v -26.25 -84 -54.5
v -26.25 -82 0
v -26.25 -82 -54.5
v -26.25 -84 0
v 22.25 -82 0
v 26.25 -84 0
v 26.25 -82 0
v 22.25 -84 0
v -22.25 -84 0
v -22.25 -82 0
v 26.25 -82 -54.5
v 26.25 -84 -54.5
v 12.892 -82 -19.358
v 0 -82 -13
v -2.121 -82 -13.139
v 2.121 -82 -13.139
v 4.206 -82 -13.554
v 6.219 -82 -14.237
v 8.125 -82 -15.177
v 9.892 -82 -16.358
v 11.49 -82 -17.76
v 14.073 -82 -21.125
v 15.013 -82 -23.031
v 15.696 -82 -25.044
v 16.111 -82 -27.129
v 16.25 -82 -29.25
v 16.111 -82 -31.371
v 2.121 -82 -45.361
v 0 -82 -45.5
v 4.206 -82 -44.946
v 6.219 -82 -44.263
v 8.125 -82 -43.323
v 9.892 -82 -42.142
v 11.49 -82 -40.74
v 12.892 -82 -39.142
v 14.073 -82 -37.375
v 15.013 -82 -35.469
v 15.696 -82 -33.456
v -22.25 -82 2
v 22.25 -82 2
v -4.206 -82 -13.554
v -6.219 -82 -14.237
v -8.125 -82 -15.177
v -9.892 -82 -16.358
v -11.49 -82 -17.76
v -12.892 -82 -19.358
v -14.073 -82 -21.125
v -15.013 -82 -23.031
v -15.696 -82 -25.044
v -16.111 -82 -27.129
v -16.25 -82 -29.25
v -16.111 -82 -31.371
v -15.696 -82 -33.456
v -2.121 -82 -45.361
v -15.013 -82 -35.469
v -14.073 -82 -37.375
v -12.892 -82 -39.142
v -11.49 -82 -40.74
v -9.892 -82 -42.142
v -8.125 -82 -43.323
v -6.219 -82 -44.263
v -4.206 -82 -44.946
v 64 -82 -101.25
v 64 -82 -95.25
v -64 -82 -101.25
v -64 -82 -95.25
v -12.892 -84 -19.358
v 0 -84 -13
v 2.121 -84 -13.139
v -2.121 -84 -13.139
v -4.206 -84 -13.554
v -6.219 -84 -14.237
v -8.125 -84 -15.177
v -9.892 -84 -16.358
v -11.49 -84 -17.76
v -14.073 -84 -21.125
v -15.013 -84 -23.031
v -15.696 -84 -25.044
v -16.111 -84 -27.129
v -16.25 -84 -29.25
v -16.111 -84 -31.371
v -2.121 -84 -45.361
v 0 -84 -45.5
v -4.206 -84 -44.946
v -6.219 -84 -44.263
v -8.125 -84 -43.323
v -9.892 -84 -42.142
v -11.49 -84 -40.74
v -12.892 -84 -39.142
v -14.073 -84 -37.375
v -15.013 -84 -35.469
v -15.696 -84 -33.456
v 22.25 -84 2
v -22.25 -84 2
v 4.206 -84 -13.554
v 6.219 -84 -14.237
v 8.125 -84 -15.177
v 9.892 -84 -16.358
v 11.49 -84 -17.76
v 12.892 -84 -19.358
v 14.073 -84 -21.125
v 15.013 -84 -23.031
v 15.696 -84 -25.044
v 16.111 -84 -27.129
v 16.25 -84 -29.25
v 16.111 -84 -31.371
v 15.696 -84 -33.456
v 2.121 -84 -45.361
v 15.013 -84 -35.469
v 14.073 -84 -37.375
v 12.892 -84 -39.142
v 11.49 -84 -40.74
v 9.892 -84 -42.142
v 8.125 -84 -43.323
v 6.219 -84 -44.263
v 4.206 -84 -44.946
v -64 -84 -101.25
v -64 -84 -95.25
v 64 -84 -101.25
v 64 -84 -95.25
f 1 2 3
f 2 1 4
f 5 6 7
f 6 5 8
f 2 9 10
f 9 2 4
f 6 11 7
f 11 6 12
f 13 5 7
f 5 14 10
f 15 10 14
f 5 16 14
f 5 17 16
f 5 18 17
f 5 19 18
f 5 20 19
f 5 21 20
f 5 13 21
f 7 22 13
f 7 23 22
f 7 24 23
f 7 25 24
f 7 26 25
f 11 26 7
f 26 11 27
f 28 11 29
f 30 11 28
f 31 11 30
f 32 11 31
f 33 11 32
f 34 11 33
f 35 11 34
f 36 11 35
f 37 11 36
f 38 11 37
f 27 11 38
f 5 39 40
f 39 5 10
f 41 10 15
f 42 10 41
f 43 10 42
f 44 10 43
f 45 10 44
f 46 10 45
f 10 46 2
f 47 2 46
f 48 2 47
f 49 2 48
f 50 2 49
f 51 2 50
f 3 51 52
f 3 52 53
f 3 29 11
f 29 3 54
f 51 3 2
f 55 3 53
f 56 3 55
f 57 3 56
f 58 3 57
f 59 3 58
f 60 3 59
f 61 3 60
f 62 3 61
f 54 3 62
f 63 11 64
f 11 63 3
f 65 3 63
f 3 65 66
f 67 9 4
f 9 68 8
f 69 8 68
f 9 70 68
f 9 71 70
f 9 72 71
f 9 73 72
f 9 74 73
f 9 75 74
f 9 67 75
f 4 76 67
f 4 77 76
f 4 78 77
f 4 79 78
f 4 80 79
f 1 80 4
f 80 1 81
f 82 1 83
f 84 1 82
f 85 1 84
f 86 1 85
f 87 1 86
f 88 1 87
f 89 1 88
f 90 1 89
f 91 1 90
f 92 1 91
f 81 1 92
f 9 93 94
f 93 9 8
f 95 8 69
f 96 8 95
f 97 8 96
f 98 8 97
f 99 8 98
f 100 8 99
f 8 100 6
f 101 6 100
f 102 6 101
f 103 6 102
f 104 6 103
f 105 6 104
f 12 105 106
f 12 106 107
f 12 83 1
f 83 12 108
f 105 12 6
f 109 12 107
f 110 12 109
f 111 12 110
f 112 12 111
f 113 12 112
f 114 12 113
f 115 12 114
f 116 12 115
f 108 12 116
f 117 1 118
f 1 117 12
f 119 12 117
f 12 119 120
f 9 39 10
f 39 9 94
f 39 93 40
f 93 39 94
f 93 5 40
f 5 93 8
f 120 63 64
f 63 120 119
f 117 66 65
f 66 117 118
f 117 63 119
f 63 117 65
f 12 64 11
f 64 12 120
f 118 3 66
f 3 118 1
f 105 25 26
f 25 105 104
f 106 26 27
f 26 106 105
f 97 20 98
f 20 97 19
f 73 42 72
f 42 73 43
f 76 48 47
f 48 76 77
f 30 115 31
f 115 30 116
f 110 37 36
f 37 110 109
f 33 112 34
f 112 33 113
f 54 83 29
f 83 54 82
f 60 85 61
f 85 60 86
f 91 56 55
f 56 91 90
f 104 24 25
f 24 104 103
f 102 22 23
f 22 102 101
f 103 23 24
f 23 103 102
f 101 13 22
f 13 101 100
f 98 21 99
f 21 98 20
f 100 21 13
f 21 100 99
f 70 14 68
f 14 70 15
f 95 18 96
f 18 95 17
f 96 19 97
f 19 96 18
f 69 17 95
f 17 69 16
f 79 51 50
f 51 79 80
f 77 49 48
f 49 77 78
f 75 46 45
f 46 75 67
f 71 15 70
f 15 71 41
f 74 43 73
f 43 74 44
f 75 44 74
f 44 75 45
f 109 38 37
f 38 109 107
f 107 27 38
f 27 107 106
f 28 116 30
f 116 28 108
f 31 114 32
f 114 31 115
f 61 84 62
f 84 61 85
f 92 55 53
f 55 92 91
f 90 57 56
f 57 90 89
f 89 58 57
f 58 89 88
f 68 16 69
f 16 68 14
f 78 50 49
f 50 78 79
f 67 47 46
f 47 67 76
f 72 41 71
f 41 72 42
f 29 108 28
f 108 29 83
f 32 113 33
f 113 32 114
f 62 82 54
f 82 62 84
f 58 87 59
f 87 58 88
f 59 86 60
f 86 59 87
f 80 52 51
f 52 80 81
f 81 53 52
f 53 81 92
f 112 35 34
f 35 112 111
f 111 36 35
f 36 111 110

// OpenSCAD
/*
  Seed imaging system case with experimental collector

  Starting point:
    A simple rectangular base plate for the vacuum/rocking seed imaging system.
*/

$fn = 48;

// Choose what OpenSCAD shows/exports.
part_to_show = "front"; // "assembly", "plate", "front", "back", "left_side", "right_side", "sides", "collector", "lower_frame", "bottom"

// Base plate dimensions.
plate_w = 210;      // mm
plate_h = 180;      // mm
plate_thick = 2;    // mm
corner_r = 2;       // mm, just enough to remove sharp corners
wall_slot_clearance = 0.3; // mm extra slot size for sliding wall parts into plate

// Cutout matching the outer tray footprint of the moving funnel adapter.
funnel_cutout_w = 124;       // mm, long side plus clearance for rotation
funnel_cutout_h = 87;        // mm, short side plus clearance for rotation
funnel_front_gap = 20;       // mm from front long edge of plate to cutout
funnel_cutout_r = 2;         // mm, slight radius to avoid sharp internal corners
funnel_cutout_y = -plate_h/2 + funnel_front_gap + funnel_cutout_h/2;

// Front wall for the vacuum adapter interface, hanging down from the top plate.
front_wall_offset_from_cutout = 12; // mm from front edge of cutout toward plate front
front_wall_extra_w = 10;            // mm extension beyond each cutout side
front_wall_w = funnel_cutout_w + 2 * front_wall_extra_w;
front_wall_h = 101.25;              // mm, bottom is 72 mm below front circle center
front_wall_thick = 2;               // mm
front_wall_y = funnel_cutout_y - funnel_cutout_h/2 - front_wall_offset_from_cutout - front_wall_thick;
back_wall_offset_from_cutout = 10;  // mm from back edge of cutout toward plate back
back_wall_y = funnel_cutout_y + funnel_cutout_h/2 + back_wall_offset_from_cutout;
side_wall_thick = front_wall_thick;
side_wall_y = front_wall_y;
side_wall_depth = back_wall_y + front_wall_thick - front_wall_y;

// Circular opening in the front wall for the static funnel-system spout.
static_spout_outer_d = 31.5;       // mm, current static male spout OD
front_wall_spout_clearance = 1;    // mm extra diameter clearance
front_wall_spout_cutout_d = static_spout_outer_d + front_wall_spout_clearance;
front_wall_spout_top_drop = 15;    // mm below top surface of plate
front_wall_spout_center_z = plate_thick - front_wall_spout_top_drop - front_wall_spout_cutout_d/2;
front_wall_tab_margin = 10;      // mm material around circular spout tab
front_wall_tab_x = -front_wall_spout_cutout_d/2 - front_wall_tab_margin;
front_wall_tab_w = front_wall_spout_cutout_d + 2 * front_wall_tab_margin;
front_back_wall_bottom_clearance = 10; // mm below circular cutout bottom
front_back_wall_bottom_z = front_wall_spout_center_z - front_wall_spout_cutout_d/2 - front_back_wall_bottom_clearance;
front_back_wall_h = -front_back_wall_bottom_z;

// Rectangular opening in the back wall, aligned with the spout opening height.
back_wall_rect_cutout_w = 40;   // mm, long horizontal edge
back_wall_rect_cutout_h = 20;   // mm, vertical edge
back_wall_rect_cutout_x_shift = -11; // mm, left shift from spout center
back_wall_notch_size = 7;       // mm square notch centered on right edge
back_wall_notch_overlap = 0.5;  // mm overlap to avoid a zero-width seam
back_wall_tab_margin = 10;      // mm material around motor cutout tab
back_wall_cutout_min_x = back_wall_rect_cutout_x_shift - back_wall_rect_cutout_w/2;
back_wall_cutout_max_x = back_wall_rect_cutout_x_shift + back_wall_rect_cutout_w/2 + back_wall_notch_size;
back_wall_tab_x = back_wall_cutout_min_x - back_wall_tab_margin;
back_wall_tab_w = back_wall_cutout_max_x - back_wall_cutout_min_x + 2 * back_wall_tab_margin;
back_wall_servo_pad_thick = 4;    // mm extra thickness behind servo mount area
back_wall_servo_pad_margin = 6;   // mm material around the motor rectangle cutout
// Experimental lower collector dimensions.
total_system_h = 190;              // mm, target total height from top of plate to floor
floor_z = plate_thick - total_system_h;
upper_wall_bottom_z = -front_wall_h;
collector_drop_h = upper_wall_bottom_z - floor_z;
collector_wall = 2;                // mm wall thickness for chute/outlet
collector_outlet_od = 30;          // mm outer diameter for seed packet interface
collector_outlet_id = collector_outlet_od - 2 * collector_wall;
collector_outlet_len = 24;         // mm, angled tube length; shorter leaves room for the funnel slope
collector_neck_overlap = 8;        // mm overlap into throat so the angled neck and funnel connect solidly
collector_outlet_angle = 135;      // degrees; cylinder axis points 45 degrees down toward the front
collector_floor_clearance = 35;    // mm from floor to lowest outside edge of outlet mouth
collector_outlet_end_z = floor_z + collector_floor_clearance + collector_outlet_od/2;
collector_outlet_start_z = collector_outlet_end_z - collector_outlet_len * cos(collector_outlet_angle);
collector_outlet_start_y = front_wall_y + 28;
collector_outlet_end_y = collector_outlet_start_y - collector_outlet_len * sin(collector_outlet_angle);
collector_top_margin = 3;          // mm inset from inside wall span
collector_post = 8;                // mm square lower frame corner posts
collector_base_rail_h = 8;         // mm height of bottom rails
collector_base_rail_thick = 6;     // mm thickness of bottom rails
collector_lip_h = 4;               // mm thick top lip tying collector mouth into lower posts
collector_lip_overlap_up = 1;      // mm overlap into upper walls for preview/alignment before adding slots
bottom_wall_notch_depth = 6;       // mm deep receiver notch for side walls in the bottom piece
side_wall_h = front_wall_h + bottom_wall_notch_depth; // mm side walls extend into bottom notches
side_wall_top_tab_inset = 4;      // mm shorter at each end to make a shoulder stop under the top plate
front_back_wall_top_tab_inset = 4; // mm shorter at each end for front/back top plate shoulder stops
tray_boundary_wall_thick = 6;     // mm, wider than 2 mm front/back walls for future notches
tray_boundary_wall_h = 6;         // mm small raised boundary at front/back tray edges
tray_boundary_wall_x_margin = 4;  // mm extra length beyond matching front/back wall pieces
tray_boundary_wall_side_inset = side_wall_thick/2 + collector_post/2; // mm keeps rails clear of side walls
front_back_diag_frame_w = 8;      // mm width of trapezoid-frame brace bands
front_back_diag_wall_overlap = 1; // mm overlap so brace merges cleanly into front/back wall
front_back_diag_inner_base_inset = 22; // mm larger values make the inner triangle less obtuse
front_back_diag_end_inset = 14;   // mm keeps brace feet shy of side-wall/funnel corners
front_back_diag_tab_w = 12;       // mm width of rectangular feet that seat in tray-wall notches
front_back_diag_tab_h = tray_boundary_wall_h; // mm foot height matching the tray wall height
front_back_diag_notch_clearance = wall_slot_clearance; // mm extra room around brace feet

// Makes a 2D rounded rectangle profile.
module rounded_rect_2d(w, h, r) {
  offset(r = r)
    square([w - 2*r, h - 2*r], center = true);
}

// Makes the main rectangular base plate with lightly rounded corners.
module base_plate() {
  linear_extrude(height = plate_thick)
    rounded_rect_2d(plate_w, plate_h, corner_r);
}

// Cuts the moving funnel adapter tray footprint through the plate. The long
// side of the cutout runs parallel to the long side of the plate.
module funnel_tray_cutout() {
  translate([0, funnel_cutout_y, -0.5])
    linear_extrude(height = plate_thick + 1)
      rounded_rect_2d(funnel_cutout_w, funnel_cutout_h, funnel_cutout_r);
}

// Cuts the round spout opening through the front wall.
module front_wall_spout_cutout() {
  translate([0, front_wall_y + front_wall_thick/2, front_wall_spout_center_z])
    rotate([90, 0, 0])
      cylinder(h = front_wall_thick + 1, d = front_wall_spout_cutout_d, center = true);
}


// Makes a trapezoid-shaped wall extension with a triangular center opening.
// The two lower rectangular feet seat into matching notches in the tray wall.
module front_back_trapezoid_brace_at(wall_x, wall_w, y, y_thick) {
  top_left = wall_x;
  top_right = wall_x + wall_w;
  foot_left_center = -front_wall_w/2 + front_back_diag_end_inset;
  foot_right_center = front_wall_w/2 - front_back_diag_end_inset;
  foot_left_outer = foot_left_center - front_back_diag_tab_w/2;
  foot_left_inner = foot_left_center + front_back_diag_tab_w/2;
  foot_right_inner = foot_right_center - front_back_diag_tab_w/2;
  foot_right_outer = foot_right_center + front_back_diag_tab_w/2;
  z_top = front_back_wall_bottom_z + front_back_diag_wall_overlap;
  z_bottom = upper_wall_bottom_z;
  z_foot_top = upper_wall_bottom_z + front_back_diag_tab_h;

  translate([0, y + y_thick, 0])
    rotate([90, 0, 0])
      linear_extrude(height = y_thick)
        polygon(points = [
          [top_left, z_top],
          [top_right, z_top],
          [foot_right_outer, z_foot_top],
          [foot_right_outer, z_bottom],
          [foot_left_outer, z_bottom],
          [foot_left_outer, z_foot_top]
        ]);
}
// Makes the front vertical wall below the plate.
module front_wall() {
  front_wall_top_tab_x = front_wall_tab_x + front_back_wall_top_tab_inset;
  front_wall_top_tab_w = front_wall_tab_w - 2 * front_back_wall_top_tab_inset;

  difference() {
    union() {
      translate([front_wall_tab_x, front_wall_y, front_back_wall_bottom_z])
        cube([front_wall_tab_w, front_wall_thick, front_back_wall_h], center = false);
      translate([front_wall_top_tab_x, front_wall_y, 0])
        cube([front_wall_top_tab_w, front_wall_thick, plate_thick], center = false);
      front_back_trapezoid_brace_at(front_wall_tab_x, front_wall_tab_w, front_wall_y, front_wall_thick);
    }
    front_wall_spout_cutout();
  }
}

// Cuts the rectangular opening through the back wall.
module back_wall_rect_cutout() {
  union() {
    translate([back_wall_rect_cutout_x_shift - back_wall_rect_cutout_w/2,
               back_wall_y - 0.5,
               front_wall_spout_center_z - back_wall_rect_cutout_h/2])
      cube([back_wall_rect_cutout_w, front_wall_thick + back_wall_servo_pad_thick + 1, back_wall_rect_cutout_h], center = false);

    translate([back_wall_rect_cutout_x_shift + back_wall_rect_cutout_w/2 - back_wall_notch_overlap,
               back_wall_y - 0.5,
               front_wall_spout_center_z - back_wall_notch_size/2])
      cube([back_wall_notch_size + back_wall_notch_overlap, front_wall_thick + back_wall_servo_pad_thick + 1, back_wall_notch_size], center = false);
  }
}


// Adds localized thickness behind the motor cutout for servo mounting screws.
module back_wall_servo_mount_pad() {
  pad_x = back_wall_tab_x;
  pad_w = back_wall_tab_w;
  pad_z = front_wall_spout_center_z - back_wall_rect_cutout_h/2 - back_wall_servo_pad_margin;
  pad_h = back_wall_rect_cutout_h + 2 * back_wall_servo_pad_margin;

  translate([pad_x, back_wall_y + front_wall_thick, pad_z])
    cube([pad_w, back_wall_servo_pad_thick, pad_h], center = false);
}
// Makes the back vertical wall below the plate, mirrored from the front wall.
module back_wall() {
  back_wall_top_tab_x = back_wall_tab_x + front_back_wall_top_tab_inset;
  back_wall_top_tab_w = back_wall_tab_w - 2 * front_back_wall_top_tab_inset;

  difference() {
    union() {
      translate([back_wall_tab_x, back_wall_y, front_back_wall_bottom_z])
        cube([back_wall_tab_w, front_wall_thick, front_back_wall_h], center = false);
      translate([back_wall_top_tab_x, back_wall_y, 0])
        cube([back_wall_top_tab_w, front_wall_thick, plate_thick], center = false);
      front_back_trapezoid_brace_at(back_wall_tab_x, back_wall_tab_w, back_wall_y, front_wall_thick);
      back_wall_servo_mount_pad();
    }
    back_wall_rect_cutout();
  }
}

// Makes side walls that connect the front and back walls while preserving
// the 144 mm interior span between their inside faces.
module side_wall(side) {
  x = side < 0 ? -front_wall_w/2 - side_wall_thick : front_wall_w/2;
  tab_y = side_wall_y + side_wall_top_tab_inset;
  tab_depth = side_wall_depth - 2 * side_wall_top_tab_inset;

  union() {
    translate([x, side_wall_y, -side_wall_h])
      cube([side_wall_thick, side_wall_depth, side_wall_h], center = false);

    translate([x, tab_y, 0])
      cube([side_wall_thick, tab_depth, plate_thick], center = false);
  }
}

module side_walls() {
  side_wall(-1);
  side_wall(1);
}
// Makes a very thin rectangular face used as the open mouth of the collector chute.
module collector_top_patch(w, d, z) {
  translate([-w/2, side_wall_y + collector_top_margin, z])
    cube([w, d, 0.4], center = false);
}

// Makes a very thin circular face used as the lower throat of the collector chute.
module collector_circle_patch(d, y, z) {
  translate([0, y, z])
    cylinder(h = 0.4, d = d, center = true);
}


// Adds a broad lip at the top of the collector so the funnel clearly rests on the lower posts
// and closes the gap to the original side wall pieces.
module collector_top_lip_outer() {
  lip_x = -front_wall_w/2 - side_wall_thick/2 - collector_post/2;
  lip_y = side_wall_y;
  lip_w = front_wall_w + side_wall_thick + collector_post;
  lip_d = side_wall_depth;

  translate([lip_x, lip_y, upper_wall_bottom_z - collector_lip_h])
    cube([lip_w, lip_d, collector_lip_h + collector_lip_overlap_up], center = false);
}

// Keeps the collector lip open so seeds can drop into the funnel.
module collector_top_lip_void() {
  opening_w = front_wall_w - 2 * collector_wall;
  opening_d = side_wall_depth - 2 * collector_wall;

  translate([-opening_w/2,
             side_wall_y + collector_wall,
             upper_wall_bottom_z - collector_lip_h - 0.5])
    cube([opening_w, opening_d, collector_lip_h + 3], center = false);
}
// Outer solid rectangular-to-round collector funnel.
module collector_chute_outer() {
  top_w_outer = front_wall_w - 2 * collector_top_margin;
  top_d_outer = side_wall_depth - 2 * collector_top_margin;

  hull() {
    collector_top_patch(top_w_outer, top_d_outer, upper_wall_bottom_z - 0.4);
    collector_circle_patch(collector_outlet_od + 2 * collector_wall, collector_outlet_start_y, collector_outlet_start_z);
  }
}

// Continuous inner void for the rectangular-to-round collector funnel.
module collector_chute_void() {
  top_w_outer = front_wall_w - 2 * collector_top_margin;
  top_d_outer = side_wall_depth - 2 * collector_top_margin;
  top_w_inner = top_w_outer - 2 * collector_wall;
  top_d_inner = top_d_outer - 2 * collector_wall;

  hull() {
    collector_top_patch(top_w_inner, top_d_inner, upper_wall_bottom_z + 1.5);
    collector_circle_patch(collector_outlet_id, collector_outlet_start_y, collector_outlet_start_z);
  }
}


// Adds material only behind the circular throat to close the rear-side gap.
// The shared inner void is subtracted later, so this reinforces the wall without blocking flow.
module collector_rear_throat_seal_outer() {
  seal_d = collector_outlet_od + 2 * collector_wall;
  seal_h = 8;

  intersection() {
    translate([0, collector_outlet_start_y, collector_outlet_start_z - seal_h/2])
      cylinder(h = seal_h, d = seal_d, center = false);

    translate([-seal_d/2,
               collector_outlet_start_y,
               collector_outlet_start_z - seal_h/2])
      cube([seal_d, seal_d/2 + collector_wall, seal_h], center = false);
  }
}
// Outer solid for the tilted outlet neck that the seed packet can wrap around.
module collector_outlet_neck_outer() {
  translate([0,
             collector_outlet_start_y + collector_neck_overlap * sin(collector_outlet_angle),
             collector_outlet_start_z - collector_neck_overlap * cos(collector_outlet_angle)])
    rotate([collector_outlet_angle, 0, 0])
      cylinder(h = collector_outlet_len + collector_neck_overlap, d = collector_outlet_od, center = false);
}

// Continuous inner void through the tilted outlet neck.
module collector_outlet_neck_void() {
  translate([0,
             collector_outlet_start_y + collector_neck_overlap * sin(collector_outlet_angle),
             collector_outlet_start_z - collector_neck_overlap * cos(collector_outlet_angle)])
    rotate([collector_outlet_angle, 0, 0])
      translate([0, 0, -0.5])
        cylinder(h = collector_outlet_len + collector_neck_overlap + 1, d = collector_outlet_id, center = false);
}


// Adds small front/back boundary walls on the collector tray lip.
// These are wider than the front/back wall thickness so future receiver notches
// can leave material on both sides of the descending wall extensions.
module collector_tray_boundary_walls_outer() {
  edge_x = -front_wall_w/2 - side_wall_thick/2 - collector_post/2 + tray_boundary_wall_side_inset;
  edge_w = front_wall_w + side_wall_thick + collector_post - 2 * tray_boundary_wall_side_inset;
  z0 = upper_wall_bottom_z;

  translate([edge_x,
             front_wall_y + front_wall_thick/2 - tray_boundary_wall_thick/2,
             z0])
    cube([edge_w, tray_boundary_wall_thick, tray_boundary_wall_h], center = false);

  translate([edge_x,
             back_wall_y + front_wall_thick/2 - tray_boundary_wall_thick/2,
             z0])
    cube([edge_w, tray_boundary_wall_thick, tray_boundary_wall_h], center = false);
}
// Makes the internal seed collector as one continuous hollow funnel and angled neck.
module collector_funnel() {
  difference() {
    union() {
      collector_top_lip_outer();
      collector_tray_boundary_walls_outer();
      collector_chute_outer();
      collector_rear_throat_seal_outer();
      collector_outlet_neck_outer();
    }

    union() {
      collector_chute_void();
      collector_outlet_neck_void();
    }
  }
}

// Adds a light lower frame so the final assembly reaches 190 mm without
// relying on the funnel shell as the only support.
module lower_frame() {
  x_left = -front_wall_w/2 - side_wall_thick/2 - collector_post/2;
  x_right = front_wall_w/2 + side_wall_thick/2 - collector_post/2;
  y_front = side_wall_y;
  y_back = side_wall_y + side_wall_depth - collector_post;

  union() {
    for (x = [x_left, x_right])
      for (y = [y_front, y_back])
        translate([x, y, floor_z])
          cube([collector_post, collector_post, collector_drop_h], center = false);

    translate([x_left, y_back, floor_z])
      cube([x_right + collector_post - x_left, collector_base_rail_thick, collector_base_rail_h], center = false);

    for (x = [x_left, x_right])
      translate([x, y_front, floor_z])
        cube([collector_post, side_wall_depth, collector_base_rail_h], center = false);
  }
}



// Cuts receiver notches into the top of the bottom module for the two side walls.
module bottom_side_wall_notches() {
  c = wall_slot_clearance;
  z0 = upper_wall_bottom_z - bottom_wall_notch_depth;
  h = bottom_wall_notch_depth + collector_lip_overlap_up + 1;

  translate([-front_wall_w/2 - side_wall_thick - c/2,
             side_wall_y - c/2,
             z0])
    cube([side_wall_thick + c, side_wall_depth + c, h], center = false);

  translate([front_wall_w/2 - c/2,
             side_wall_y - c/2,
             z0])
    cube([side_wall_thick + c, side_wall_depth + c, h], center = false);
}

// Cuts one long receiver groove in each tray rail for the front/back brace base.
module front_back_brace_foot_notches() {
  c = front_back_diag_notch_clearance;
  groove_w = front_wall_w - 2 * front_back_diag_end_inset + front_back_diag_tab_w + c;
  groove_y = front_wall_thick + c;
  groove_h = front_back_diag_tab_h + c;
  wall_ys = [front_wall_y, back_wall_y];

  for (y = wall_ys)
    translate([-groove_w/2,
               y - c/2,
               upper_wall_bottom_z - c/2])
      cube([groove_w, groove_y, groove_h], center = false);
}
// Makes the new lower modular piece: collector funnel plus its support frame.
// The original side walls remain separate modules so we can add slide-fit features next.
module bottom_piece() {
  difference() {
    union() {
      collector_funnel();
      lower_frame();
    }
    bottom_side_wall_notches();
    front_back_brace_foot_notches();
  }
}
// Cuts slots through the top plate matching the top footprint of each wall/tab.
module wall_slot_cutouts() {
  c = wall_slot_clearance;

  translate([front_wall_tab_x + front_back_wall_top_tab_inset - c/2, front_wall_y - c/2, -0.5])
    cube([front_wall_tab_w - 2 * front_back_wall_top_tab_inset + c, front_wall_thick + c, plate_thick + 1], center = false);

  translate([back_wall_tab_x + front_back_wall_top_tab_inset - c/2, back_wall_y - c/2, -0.5])
    cube([back_wall_tab_w - 2 * front_back_wall_top_tab_inset + c, front_wall_thick + c, plate_thick + 1], center = false);

  translate([-front_wall_w/2 - side_wall_thick - c/2,
             side_wall_y + side_wall_top_tab_inset - c/2,
             -0.5])
    cube([side_wall_thick + c,
          side_wall_depth - 2 * side_wall_top_tab_inset + c,
          plate_thick + 1], center = false);

  translate([front_wall_w/2 - c/2,
             side_wall_y + side_wall_top_tab_inset - c/2,
             -0.5])
    cube([side_wall_thick + c,
          side_wall_depth - 2 * side_wall_top_tab_inset + c,
          plate_thick + 1], center = false);
}
module case_plate() {
  difference() {
    base_plate();
    funnel_tray_cutout();
    wall_slot_cutouts();
  }
}

module case_assembly() {
  union() {
    case_plate();
    front_wall();
    back_wall();
    side_walls();
    bottom_piece();
  }
}

if (part_to_show == "plate") {
  case_plate();
} else if (part_to_show == "front") {
  front_wall();
} else if (part_to_show == "back") {
  back_wall();
} else if (part_to_show == "left_side") {
  side_wall(-1);
} else if (part_to_show == "right_side") {
  side_wall(1);
} else if (part_to_show == "sides") {
  side_walls();
} else if (part_to_show == "collector") {
  collector_funnel();
} else if (part_to_show == "lower_frame") {
  lower_frame();
} else if (part_to_show == "bottom") {
  bottom_piece();
} else {
  case_assembly();
}
